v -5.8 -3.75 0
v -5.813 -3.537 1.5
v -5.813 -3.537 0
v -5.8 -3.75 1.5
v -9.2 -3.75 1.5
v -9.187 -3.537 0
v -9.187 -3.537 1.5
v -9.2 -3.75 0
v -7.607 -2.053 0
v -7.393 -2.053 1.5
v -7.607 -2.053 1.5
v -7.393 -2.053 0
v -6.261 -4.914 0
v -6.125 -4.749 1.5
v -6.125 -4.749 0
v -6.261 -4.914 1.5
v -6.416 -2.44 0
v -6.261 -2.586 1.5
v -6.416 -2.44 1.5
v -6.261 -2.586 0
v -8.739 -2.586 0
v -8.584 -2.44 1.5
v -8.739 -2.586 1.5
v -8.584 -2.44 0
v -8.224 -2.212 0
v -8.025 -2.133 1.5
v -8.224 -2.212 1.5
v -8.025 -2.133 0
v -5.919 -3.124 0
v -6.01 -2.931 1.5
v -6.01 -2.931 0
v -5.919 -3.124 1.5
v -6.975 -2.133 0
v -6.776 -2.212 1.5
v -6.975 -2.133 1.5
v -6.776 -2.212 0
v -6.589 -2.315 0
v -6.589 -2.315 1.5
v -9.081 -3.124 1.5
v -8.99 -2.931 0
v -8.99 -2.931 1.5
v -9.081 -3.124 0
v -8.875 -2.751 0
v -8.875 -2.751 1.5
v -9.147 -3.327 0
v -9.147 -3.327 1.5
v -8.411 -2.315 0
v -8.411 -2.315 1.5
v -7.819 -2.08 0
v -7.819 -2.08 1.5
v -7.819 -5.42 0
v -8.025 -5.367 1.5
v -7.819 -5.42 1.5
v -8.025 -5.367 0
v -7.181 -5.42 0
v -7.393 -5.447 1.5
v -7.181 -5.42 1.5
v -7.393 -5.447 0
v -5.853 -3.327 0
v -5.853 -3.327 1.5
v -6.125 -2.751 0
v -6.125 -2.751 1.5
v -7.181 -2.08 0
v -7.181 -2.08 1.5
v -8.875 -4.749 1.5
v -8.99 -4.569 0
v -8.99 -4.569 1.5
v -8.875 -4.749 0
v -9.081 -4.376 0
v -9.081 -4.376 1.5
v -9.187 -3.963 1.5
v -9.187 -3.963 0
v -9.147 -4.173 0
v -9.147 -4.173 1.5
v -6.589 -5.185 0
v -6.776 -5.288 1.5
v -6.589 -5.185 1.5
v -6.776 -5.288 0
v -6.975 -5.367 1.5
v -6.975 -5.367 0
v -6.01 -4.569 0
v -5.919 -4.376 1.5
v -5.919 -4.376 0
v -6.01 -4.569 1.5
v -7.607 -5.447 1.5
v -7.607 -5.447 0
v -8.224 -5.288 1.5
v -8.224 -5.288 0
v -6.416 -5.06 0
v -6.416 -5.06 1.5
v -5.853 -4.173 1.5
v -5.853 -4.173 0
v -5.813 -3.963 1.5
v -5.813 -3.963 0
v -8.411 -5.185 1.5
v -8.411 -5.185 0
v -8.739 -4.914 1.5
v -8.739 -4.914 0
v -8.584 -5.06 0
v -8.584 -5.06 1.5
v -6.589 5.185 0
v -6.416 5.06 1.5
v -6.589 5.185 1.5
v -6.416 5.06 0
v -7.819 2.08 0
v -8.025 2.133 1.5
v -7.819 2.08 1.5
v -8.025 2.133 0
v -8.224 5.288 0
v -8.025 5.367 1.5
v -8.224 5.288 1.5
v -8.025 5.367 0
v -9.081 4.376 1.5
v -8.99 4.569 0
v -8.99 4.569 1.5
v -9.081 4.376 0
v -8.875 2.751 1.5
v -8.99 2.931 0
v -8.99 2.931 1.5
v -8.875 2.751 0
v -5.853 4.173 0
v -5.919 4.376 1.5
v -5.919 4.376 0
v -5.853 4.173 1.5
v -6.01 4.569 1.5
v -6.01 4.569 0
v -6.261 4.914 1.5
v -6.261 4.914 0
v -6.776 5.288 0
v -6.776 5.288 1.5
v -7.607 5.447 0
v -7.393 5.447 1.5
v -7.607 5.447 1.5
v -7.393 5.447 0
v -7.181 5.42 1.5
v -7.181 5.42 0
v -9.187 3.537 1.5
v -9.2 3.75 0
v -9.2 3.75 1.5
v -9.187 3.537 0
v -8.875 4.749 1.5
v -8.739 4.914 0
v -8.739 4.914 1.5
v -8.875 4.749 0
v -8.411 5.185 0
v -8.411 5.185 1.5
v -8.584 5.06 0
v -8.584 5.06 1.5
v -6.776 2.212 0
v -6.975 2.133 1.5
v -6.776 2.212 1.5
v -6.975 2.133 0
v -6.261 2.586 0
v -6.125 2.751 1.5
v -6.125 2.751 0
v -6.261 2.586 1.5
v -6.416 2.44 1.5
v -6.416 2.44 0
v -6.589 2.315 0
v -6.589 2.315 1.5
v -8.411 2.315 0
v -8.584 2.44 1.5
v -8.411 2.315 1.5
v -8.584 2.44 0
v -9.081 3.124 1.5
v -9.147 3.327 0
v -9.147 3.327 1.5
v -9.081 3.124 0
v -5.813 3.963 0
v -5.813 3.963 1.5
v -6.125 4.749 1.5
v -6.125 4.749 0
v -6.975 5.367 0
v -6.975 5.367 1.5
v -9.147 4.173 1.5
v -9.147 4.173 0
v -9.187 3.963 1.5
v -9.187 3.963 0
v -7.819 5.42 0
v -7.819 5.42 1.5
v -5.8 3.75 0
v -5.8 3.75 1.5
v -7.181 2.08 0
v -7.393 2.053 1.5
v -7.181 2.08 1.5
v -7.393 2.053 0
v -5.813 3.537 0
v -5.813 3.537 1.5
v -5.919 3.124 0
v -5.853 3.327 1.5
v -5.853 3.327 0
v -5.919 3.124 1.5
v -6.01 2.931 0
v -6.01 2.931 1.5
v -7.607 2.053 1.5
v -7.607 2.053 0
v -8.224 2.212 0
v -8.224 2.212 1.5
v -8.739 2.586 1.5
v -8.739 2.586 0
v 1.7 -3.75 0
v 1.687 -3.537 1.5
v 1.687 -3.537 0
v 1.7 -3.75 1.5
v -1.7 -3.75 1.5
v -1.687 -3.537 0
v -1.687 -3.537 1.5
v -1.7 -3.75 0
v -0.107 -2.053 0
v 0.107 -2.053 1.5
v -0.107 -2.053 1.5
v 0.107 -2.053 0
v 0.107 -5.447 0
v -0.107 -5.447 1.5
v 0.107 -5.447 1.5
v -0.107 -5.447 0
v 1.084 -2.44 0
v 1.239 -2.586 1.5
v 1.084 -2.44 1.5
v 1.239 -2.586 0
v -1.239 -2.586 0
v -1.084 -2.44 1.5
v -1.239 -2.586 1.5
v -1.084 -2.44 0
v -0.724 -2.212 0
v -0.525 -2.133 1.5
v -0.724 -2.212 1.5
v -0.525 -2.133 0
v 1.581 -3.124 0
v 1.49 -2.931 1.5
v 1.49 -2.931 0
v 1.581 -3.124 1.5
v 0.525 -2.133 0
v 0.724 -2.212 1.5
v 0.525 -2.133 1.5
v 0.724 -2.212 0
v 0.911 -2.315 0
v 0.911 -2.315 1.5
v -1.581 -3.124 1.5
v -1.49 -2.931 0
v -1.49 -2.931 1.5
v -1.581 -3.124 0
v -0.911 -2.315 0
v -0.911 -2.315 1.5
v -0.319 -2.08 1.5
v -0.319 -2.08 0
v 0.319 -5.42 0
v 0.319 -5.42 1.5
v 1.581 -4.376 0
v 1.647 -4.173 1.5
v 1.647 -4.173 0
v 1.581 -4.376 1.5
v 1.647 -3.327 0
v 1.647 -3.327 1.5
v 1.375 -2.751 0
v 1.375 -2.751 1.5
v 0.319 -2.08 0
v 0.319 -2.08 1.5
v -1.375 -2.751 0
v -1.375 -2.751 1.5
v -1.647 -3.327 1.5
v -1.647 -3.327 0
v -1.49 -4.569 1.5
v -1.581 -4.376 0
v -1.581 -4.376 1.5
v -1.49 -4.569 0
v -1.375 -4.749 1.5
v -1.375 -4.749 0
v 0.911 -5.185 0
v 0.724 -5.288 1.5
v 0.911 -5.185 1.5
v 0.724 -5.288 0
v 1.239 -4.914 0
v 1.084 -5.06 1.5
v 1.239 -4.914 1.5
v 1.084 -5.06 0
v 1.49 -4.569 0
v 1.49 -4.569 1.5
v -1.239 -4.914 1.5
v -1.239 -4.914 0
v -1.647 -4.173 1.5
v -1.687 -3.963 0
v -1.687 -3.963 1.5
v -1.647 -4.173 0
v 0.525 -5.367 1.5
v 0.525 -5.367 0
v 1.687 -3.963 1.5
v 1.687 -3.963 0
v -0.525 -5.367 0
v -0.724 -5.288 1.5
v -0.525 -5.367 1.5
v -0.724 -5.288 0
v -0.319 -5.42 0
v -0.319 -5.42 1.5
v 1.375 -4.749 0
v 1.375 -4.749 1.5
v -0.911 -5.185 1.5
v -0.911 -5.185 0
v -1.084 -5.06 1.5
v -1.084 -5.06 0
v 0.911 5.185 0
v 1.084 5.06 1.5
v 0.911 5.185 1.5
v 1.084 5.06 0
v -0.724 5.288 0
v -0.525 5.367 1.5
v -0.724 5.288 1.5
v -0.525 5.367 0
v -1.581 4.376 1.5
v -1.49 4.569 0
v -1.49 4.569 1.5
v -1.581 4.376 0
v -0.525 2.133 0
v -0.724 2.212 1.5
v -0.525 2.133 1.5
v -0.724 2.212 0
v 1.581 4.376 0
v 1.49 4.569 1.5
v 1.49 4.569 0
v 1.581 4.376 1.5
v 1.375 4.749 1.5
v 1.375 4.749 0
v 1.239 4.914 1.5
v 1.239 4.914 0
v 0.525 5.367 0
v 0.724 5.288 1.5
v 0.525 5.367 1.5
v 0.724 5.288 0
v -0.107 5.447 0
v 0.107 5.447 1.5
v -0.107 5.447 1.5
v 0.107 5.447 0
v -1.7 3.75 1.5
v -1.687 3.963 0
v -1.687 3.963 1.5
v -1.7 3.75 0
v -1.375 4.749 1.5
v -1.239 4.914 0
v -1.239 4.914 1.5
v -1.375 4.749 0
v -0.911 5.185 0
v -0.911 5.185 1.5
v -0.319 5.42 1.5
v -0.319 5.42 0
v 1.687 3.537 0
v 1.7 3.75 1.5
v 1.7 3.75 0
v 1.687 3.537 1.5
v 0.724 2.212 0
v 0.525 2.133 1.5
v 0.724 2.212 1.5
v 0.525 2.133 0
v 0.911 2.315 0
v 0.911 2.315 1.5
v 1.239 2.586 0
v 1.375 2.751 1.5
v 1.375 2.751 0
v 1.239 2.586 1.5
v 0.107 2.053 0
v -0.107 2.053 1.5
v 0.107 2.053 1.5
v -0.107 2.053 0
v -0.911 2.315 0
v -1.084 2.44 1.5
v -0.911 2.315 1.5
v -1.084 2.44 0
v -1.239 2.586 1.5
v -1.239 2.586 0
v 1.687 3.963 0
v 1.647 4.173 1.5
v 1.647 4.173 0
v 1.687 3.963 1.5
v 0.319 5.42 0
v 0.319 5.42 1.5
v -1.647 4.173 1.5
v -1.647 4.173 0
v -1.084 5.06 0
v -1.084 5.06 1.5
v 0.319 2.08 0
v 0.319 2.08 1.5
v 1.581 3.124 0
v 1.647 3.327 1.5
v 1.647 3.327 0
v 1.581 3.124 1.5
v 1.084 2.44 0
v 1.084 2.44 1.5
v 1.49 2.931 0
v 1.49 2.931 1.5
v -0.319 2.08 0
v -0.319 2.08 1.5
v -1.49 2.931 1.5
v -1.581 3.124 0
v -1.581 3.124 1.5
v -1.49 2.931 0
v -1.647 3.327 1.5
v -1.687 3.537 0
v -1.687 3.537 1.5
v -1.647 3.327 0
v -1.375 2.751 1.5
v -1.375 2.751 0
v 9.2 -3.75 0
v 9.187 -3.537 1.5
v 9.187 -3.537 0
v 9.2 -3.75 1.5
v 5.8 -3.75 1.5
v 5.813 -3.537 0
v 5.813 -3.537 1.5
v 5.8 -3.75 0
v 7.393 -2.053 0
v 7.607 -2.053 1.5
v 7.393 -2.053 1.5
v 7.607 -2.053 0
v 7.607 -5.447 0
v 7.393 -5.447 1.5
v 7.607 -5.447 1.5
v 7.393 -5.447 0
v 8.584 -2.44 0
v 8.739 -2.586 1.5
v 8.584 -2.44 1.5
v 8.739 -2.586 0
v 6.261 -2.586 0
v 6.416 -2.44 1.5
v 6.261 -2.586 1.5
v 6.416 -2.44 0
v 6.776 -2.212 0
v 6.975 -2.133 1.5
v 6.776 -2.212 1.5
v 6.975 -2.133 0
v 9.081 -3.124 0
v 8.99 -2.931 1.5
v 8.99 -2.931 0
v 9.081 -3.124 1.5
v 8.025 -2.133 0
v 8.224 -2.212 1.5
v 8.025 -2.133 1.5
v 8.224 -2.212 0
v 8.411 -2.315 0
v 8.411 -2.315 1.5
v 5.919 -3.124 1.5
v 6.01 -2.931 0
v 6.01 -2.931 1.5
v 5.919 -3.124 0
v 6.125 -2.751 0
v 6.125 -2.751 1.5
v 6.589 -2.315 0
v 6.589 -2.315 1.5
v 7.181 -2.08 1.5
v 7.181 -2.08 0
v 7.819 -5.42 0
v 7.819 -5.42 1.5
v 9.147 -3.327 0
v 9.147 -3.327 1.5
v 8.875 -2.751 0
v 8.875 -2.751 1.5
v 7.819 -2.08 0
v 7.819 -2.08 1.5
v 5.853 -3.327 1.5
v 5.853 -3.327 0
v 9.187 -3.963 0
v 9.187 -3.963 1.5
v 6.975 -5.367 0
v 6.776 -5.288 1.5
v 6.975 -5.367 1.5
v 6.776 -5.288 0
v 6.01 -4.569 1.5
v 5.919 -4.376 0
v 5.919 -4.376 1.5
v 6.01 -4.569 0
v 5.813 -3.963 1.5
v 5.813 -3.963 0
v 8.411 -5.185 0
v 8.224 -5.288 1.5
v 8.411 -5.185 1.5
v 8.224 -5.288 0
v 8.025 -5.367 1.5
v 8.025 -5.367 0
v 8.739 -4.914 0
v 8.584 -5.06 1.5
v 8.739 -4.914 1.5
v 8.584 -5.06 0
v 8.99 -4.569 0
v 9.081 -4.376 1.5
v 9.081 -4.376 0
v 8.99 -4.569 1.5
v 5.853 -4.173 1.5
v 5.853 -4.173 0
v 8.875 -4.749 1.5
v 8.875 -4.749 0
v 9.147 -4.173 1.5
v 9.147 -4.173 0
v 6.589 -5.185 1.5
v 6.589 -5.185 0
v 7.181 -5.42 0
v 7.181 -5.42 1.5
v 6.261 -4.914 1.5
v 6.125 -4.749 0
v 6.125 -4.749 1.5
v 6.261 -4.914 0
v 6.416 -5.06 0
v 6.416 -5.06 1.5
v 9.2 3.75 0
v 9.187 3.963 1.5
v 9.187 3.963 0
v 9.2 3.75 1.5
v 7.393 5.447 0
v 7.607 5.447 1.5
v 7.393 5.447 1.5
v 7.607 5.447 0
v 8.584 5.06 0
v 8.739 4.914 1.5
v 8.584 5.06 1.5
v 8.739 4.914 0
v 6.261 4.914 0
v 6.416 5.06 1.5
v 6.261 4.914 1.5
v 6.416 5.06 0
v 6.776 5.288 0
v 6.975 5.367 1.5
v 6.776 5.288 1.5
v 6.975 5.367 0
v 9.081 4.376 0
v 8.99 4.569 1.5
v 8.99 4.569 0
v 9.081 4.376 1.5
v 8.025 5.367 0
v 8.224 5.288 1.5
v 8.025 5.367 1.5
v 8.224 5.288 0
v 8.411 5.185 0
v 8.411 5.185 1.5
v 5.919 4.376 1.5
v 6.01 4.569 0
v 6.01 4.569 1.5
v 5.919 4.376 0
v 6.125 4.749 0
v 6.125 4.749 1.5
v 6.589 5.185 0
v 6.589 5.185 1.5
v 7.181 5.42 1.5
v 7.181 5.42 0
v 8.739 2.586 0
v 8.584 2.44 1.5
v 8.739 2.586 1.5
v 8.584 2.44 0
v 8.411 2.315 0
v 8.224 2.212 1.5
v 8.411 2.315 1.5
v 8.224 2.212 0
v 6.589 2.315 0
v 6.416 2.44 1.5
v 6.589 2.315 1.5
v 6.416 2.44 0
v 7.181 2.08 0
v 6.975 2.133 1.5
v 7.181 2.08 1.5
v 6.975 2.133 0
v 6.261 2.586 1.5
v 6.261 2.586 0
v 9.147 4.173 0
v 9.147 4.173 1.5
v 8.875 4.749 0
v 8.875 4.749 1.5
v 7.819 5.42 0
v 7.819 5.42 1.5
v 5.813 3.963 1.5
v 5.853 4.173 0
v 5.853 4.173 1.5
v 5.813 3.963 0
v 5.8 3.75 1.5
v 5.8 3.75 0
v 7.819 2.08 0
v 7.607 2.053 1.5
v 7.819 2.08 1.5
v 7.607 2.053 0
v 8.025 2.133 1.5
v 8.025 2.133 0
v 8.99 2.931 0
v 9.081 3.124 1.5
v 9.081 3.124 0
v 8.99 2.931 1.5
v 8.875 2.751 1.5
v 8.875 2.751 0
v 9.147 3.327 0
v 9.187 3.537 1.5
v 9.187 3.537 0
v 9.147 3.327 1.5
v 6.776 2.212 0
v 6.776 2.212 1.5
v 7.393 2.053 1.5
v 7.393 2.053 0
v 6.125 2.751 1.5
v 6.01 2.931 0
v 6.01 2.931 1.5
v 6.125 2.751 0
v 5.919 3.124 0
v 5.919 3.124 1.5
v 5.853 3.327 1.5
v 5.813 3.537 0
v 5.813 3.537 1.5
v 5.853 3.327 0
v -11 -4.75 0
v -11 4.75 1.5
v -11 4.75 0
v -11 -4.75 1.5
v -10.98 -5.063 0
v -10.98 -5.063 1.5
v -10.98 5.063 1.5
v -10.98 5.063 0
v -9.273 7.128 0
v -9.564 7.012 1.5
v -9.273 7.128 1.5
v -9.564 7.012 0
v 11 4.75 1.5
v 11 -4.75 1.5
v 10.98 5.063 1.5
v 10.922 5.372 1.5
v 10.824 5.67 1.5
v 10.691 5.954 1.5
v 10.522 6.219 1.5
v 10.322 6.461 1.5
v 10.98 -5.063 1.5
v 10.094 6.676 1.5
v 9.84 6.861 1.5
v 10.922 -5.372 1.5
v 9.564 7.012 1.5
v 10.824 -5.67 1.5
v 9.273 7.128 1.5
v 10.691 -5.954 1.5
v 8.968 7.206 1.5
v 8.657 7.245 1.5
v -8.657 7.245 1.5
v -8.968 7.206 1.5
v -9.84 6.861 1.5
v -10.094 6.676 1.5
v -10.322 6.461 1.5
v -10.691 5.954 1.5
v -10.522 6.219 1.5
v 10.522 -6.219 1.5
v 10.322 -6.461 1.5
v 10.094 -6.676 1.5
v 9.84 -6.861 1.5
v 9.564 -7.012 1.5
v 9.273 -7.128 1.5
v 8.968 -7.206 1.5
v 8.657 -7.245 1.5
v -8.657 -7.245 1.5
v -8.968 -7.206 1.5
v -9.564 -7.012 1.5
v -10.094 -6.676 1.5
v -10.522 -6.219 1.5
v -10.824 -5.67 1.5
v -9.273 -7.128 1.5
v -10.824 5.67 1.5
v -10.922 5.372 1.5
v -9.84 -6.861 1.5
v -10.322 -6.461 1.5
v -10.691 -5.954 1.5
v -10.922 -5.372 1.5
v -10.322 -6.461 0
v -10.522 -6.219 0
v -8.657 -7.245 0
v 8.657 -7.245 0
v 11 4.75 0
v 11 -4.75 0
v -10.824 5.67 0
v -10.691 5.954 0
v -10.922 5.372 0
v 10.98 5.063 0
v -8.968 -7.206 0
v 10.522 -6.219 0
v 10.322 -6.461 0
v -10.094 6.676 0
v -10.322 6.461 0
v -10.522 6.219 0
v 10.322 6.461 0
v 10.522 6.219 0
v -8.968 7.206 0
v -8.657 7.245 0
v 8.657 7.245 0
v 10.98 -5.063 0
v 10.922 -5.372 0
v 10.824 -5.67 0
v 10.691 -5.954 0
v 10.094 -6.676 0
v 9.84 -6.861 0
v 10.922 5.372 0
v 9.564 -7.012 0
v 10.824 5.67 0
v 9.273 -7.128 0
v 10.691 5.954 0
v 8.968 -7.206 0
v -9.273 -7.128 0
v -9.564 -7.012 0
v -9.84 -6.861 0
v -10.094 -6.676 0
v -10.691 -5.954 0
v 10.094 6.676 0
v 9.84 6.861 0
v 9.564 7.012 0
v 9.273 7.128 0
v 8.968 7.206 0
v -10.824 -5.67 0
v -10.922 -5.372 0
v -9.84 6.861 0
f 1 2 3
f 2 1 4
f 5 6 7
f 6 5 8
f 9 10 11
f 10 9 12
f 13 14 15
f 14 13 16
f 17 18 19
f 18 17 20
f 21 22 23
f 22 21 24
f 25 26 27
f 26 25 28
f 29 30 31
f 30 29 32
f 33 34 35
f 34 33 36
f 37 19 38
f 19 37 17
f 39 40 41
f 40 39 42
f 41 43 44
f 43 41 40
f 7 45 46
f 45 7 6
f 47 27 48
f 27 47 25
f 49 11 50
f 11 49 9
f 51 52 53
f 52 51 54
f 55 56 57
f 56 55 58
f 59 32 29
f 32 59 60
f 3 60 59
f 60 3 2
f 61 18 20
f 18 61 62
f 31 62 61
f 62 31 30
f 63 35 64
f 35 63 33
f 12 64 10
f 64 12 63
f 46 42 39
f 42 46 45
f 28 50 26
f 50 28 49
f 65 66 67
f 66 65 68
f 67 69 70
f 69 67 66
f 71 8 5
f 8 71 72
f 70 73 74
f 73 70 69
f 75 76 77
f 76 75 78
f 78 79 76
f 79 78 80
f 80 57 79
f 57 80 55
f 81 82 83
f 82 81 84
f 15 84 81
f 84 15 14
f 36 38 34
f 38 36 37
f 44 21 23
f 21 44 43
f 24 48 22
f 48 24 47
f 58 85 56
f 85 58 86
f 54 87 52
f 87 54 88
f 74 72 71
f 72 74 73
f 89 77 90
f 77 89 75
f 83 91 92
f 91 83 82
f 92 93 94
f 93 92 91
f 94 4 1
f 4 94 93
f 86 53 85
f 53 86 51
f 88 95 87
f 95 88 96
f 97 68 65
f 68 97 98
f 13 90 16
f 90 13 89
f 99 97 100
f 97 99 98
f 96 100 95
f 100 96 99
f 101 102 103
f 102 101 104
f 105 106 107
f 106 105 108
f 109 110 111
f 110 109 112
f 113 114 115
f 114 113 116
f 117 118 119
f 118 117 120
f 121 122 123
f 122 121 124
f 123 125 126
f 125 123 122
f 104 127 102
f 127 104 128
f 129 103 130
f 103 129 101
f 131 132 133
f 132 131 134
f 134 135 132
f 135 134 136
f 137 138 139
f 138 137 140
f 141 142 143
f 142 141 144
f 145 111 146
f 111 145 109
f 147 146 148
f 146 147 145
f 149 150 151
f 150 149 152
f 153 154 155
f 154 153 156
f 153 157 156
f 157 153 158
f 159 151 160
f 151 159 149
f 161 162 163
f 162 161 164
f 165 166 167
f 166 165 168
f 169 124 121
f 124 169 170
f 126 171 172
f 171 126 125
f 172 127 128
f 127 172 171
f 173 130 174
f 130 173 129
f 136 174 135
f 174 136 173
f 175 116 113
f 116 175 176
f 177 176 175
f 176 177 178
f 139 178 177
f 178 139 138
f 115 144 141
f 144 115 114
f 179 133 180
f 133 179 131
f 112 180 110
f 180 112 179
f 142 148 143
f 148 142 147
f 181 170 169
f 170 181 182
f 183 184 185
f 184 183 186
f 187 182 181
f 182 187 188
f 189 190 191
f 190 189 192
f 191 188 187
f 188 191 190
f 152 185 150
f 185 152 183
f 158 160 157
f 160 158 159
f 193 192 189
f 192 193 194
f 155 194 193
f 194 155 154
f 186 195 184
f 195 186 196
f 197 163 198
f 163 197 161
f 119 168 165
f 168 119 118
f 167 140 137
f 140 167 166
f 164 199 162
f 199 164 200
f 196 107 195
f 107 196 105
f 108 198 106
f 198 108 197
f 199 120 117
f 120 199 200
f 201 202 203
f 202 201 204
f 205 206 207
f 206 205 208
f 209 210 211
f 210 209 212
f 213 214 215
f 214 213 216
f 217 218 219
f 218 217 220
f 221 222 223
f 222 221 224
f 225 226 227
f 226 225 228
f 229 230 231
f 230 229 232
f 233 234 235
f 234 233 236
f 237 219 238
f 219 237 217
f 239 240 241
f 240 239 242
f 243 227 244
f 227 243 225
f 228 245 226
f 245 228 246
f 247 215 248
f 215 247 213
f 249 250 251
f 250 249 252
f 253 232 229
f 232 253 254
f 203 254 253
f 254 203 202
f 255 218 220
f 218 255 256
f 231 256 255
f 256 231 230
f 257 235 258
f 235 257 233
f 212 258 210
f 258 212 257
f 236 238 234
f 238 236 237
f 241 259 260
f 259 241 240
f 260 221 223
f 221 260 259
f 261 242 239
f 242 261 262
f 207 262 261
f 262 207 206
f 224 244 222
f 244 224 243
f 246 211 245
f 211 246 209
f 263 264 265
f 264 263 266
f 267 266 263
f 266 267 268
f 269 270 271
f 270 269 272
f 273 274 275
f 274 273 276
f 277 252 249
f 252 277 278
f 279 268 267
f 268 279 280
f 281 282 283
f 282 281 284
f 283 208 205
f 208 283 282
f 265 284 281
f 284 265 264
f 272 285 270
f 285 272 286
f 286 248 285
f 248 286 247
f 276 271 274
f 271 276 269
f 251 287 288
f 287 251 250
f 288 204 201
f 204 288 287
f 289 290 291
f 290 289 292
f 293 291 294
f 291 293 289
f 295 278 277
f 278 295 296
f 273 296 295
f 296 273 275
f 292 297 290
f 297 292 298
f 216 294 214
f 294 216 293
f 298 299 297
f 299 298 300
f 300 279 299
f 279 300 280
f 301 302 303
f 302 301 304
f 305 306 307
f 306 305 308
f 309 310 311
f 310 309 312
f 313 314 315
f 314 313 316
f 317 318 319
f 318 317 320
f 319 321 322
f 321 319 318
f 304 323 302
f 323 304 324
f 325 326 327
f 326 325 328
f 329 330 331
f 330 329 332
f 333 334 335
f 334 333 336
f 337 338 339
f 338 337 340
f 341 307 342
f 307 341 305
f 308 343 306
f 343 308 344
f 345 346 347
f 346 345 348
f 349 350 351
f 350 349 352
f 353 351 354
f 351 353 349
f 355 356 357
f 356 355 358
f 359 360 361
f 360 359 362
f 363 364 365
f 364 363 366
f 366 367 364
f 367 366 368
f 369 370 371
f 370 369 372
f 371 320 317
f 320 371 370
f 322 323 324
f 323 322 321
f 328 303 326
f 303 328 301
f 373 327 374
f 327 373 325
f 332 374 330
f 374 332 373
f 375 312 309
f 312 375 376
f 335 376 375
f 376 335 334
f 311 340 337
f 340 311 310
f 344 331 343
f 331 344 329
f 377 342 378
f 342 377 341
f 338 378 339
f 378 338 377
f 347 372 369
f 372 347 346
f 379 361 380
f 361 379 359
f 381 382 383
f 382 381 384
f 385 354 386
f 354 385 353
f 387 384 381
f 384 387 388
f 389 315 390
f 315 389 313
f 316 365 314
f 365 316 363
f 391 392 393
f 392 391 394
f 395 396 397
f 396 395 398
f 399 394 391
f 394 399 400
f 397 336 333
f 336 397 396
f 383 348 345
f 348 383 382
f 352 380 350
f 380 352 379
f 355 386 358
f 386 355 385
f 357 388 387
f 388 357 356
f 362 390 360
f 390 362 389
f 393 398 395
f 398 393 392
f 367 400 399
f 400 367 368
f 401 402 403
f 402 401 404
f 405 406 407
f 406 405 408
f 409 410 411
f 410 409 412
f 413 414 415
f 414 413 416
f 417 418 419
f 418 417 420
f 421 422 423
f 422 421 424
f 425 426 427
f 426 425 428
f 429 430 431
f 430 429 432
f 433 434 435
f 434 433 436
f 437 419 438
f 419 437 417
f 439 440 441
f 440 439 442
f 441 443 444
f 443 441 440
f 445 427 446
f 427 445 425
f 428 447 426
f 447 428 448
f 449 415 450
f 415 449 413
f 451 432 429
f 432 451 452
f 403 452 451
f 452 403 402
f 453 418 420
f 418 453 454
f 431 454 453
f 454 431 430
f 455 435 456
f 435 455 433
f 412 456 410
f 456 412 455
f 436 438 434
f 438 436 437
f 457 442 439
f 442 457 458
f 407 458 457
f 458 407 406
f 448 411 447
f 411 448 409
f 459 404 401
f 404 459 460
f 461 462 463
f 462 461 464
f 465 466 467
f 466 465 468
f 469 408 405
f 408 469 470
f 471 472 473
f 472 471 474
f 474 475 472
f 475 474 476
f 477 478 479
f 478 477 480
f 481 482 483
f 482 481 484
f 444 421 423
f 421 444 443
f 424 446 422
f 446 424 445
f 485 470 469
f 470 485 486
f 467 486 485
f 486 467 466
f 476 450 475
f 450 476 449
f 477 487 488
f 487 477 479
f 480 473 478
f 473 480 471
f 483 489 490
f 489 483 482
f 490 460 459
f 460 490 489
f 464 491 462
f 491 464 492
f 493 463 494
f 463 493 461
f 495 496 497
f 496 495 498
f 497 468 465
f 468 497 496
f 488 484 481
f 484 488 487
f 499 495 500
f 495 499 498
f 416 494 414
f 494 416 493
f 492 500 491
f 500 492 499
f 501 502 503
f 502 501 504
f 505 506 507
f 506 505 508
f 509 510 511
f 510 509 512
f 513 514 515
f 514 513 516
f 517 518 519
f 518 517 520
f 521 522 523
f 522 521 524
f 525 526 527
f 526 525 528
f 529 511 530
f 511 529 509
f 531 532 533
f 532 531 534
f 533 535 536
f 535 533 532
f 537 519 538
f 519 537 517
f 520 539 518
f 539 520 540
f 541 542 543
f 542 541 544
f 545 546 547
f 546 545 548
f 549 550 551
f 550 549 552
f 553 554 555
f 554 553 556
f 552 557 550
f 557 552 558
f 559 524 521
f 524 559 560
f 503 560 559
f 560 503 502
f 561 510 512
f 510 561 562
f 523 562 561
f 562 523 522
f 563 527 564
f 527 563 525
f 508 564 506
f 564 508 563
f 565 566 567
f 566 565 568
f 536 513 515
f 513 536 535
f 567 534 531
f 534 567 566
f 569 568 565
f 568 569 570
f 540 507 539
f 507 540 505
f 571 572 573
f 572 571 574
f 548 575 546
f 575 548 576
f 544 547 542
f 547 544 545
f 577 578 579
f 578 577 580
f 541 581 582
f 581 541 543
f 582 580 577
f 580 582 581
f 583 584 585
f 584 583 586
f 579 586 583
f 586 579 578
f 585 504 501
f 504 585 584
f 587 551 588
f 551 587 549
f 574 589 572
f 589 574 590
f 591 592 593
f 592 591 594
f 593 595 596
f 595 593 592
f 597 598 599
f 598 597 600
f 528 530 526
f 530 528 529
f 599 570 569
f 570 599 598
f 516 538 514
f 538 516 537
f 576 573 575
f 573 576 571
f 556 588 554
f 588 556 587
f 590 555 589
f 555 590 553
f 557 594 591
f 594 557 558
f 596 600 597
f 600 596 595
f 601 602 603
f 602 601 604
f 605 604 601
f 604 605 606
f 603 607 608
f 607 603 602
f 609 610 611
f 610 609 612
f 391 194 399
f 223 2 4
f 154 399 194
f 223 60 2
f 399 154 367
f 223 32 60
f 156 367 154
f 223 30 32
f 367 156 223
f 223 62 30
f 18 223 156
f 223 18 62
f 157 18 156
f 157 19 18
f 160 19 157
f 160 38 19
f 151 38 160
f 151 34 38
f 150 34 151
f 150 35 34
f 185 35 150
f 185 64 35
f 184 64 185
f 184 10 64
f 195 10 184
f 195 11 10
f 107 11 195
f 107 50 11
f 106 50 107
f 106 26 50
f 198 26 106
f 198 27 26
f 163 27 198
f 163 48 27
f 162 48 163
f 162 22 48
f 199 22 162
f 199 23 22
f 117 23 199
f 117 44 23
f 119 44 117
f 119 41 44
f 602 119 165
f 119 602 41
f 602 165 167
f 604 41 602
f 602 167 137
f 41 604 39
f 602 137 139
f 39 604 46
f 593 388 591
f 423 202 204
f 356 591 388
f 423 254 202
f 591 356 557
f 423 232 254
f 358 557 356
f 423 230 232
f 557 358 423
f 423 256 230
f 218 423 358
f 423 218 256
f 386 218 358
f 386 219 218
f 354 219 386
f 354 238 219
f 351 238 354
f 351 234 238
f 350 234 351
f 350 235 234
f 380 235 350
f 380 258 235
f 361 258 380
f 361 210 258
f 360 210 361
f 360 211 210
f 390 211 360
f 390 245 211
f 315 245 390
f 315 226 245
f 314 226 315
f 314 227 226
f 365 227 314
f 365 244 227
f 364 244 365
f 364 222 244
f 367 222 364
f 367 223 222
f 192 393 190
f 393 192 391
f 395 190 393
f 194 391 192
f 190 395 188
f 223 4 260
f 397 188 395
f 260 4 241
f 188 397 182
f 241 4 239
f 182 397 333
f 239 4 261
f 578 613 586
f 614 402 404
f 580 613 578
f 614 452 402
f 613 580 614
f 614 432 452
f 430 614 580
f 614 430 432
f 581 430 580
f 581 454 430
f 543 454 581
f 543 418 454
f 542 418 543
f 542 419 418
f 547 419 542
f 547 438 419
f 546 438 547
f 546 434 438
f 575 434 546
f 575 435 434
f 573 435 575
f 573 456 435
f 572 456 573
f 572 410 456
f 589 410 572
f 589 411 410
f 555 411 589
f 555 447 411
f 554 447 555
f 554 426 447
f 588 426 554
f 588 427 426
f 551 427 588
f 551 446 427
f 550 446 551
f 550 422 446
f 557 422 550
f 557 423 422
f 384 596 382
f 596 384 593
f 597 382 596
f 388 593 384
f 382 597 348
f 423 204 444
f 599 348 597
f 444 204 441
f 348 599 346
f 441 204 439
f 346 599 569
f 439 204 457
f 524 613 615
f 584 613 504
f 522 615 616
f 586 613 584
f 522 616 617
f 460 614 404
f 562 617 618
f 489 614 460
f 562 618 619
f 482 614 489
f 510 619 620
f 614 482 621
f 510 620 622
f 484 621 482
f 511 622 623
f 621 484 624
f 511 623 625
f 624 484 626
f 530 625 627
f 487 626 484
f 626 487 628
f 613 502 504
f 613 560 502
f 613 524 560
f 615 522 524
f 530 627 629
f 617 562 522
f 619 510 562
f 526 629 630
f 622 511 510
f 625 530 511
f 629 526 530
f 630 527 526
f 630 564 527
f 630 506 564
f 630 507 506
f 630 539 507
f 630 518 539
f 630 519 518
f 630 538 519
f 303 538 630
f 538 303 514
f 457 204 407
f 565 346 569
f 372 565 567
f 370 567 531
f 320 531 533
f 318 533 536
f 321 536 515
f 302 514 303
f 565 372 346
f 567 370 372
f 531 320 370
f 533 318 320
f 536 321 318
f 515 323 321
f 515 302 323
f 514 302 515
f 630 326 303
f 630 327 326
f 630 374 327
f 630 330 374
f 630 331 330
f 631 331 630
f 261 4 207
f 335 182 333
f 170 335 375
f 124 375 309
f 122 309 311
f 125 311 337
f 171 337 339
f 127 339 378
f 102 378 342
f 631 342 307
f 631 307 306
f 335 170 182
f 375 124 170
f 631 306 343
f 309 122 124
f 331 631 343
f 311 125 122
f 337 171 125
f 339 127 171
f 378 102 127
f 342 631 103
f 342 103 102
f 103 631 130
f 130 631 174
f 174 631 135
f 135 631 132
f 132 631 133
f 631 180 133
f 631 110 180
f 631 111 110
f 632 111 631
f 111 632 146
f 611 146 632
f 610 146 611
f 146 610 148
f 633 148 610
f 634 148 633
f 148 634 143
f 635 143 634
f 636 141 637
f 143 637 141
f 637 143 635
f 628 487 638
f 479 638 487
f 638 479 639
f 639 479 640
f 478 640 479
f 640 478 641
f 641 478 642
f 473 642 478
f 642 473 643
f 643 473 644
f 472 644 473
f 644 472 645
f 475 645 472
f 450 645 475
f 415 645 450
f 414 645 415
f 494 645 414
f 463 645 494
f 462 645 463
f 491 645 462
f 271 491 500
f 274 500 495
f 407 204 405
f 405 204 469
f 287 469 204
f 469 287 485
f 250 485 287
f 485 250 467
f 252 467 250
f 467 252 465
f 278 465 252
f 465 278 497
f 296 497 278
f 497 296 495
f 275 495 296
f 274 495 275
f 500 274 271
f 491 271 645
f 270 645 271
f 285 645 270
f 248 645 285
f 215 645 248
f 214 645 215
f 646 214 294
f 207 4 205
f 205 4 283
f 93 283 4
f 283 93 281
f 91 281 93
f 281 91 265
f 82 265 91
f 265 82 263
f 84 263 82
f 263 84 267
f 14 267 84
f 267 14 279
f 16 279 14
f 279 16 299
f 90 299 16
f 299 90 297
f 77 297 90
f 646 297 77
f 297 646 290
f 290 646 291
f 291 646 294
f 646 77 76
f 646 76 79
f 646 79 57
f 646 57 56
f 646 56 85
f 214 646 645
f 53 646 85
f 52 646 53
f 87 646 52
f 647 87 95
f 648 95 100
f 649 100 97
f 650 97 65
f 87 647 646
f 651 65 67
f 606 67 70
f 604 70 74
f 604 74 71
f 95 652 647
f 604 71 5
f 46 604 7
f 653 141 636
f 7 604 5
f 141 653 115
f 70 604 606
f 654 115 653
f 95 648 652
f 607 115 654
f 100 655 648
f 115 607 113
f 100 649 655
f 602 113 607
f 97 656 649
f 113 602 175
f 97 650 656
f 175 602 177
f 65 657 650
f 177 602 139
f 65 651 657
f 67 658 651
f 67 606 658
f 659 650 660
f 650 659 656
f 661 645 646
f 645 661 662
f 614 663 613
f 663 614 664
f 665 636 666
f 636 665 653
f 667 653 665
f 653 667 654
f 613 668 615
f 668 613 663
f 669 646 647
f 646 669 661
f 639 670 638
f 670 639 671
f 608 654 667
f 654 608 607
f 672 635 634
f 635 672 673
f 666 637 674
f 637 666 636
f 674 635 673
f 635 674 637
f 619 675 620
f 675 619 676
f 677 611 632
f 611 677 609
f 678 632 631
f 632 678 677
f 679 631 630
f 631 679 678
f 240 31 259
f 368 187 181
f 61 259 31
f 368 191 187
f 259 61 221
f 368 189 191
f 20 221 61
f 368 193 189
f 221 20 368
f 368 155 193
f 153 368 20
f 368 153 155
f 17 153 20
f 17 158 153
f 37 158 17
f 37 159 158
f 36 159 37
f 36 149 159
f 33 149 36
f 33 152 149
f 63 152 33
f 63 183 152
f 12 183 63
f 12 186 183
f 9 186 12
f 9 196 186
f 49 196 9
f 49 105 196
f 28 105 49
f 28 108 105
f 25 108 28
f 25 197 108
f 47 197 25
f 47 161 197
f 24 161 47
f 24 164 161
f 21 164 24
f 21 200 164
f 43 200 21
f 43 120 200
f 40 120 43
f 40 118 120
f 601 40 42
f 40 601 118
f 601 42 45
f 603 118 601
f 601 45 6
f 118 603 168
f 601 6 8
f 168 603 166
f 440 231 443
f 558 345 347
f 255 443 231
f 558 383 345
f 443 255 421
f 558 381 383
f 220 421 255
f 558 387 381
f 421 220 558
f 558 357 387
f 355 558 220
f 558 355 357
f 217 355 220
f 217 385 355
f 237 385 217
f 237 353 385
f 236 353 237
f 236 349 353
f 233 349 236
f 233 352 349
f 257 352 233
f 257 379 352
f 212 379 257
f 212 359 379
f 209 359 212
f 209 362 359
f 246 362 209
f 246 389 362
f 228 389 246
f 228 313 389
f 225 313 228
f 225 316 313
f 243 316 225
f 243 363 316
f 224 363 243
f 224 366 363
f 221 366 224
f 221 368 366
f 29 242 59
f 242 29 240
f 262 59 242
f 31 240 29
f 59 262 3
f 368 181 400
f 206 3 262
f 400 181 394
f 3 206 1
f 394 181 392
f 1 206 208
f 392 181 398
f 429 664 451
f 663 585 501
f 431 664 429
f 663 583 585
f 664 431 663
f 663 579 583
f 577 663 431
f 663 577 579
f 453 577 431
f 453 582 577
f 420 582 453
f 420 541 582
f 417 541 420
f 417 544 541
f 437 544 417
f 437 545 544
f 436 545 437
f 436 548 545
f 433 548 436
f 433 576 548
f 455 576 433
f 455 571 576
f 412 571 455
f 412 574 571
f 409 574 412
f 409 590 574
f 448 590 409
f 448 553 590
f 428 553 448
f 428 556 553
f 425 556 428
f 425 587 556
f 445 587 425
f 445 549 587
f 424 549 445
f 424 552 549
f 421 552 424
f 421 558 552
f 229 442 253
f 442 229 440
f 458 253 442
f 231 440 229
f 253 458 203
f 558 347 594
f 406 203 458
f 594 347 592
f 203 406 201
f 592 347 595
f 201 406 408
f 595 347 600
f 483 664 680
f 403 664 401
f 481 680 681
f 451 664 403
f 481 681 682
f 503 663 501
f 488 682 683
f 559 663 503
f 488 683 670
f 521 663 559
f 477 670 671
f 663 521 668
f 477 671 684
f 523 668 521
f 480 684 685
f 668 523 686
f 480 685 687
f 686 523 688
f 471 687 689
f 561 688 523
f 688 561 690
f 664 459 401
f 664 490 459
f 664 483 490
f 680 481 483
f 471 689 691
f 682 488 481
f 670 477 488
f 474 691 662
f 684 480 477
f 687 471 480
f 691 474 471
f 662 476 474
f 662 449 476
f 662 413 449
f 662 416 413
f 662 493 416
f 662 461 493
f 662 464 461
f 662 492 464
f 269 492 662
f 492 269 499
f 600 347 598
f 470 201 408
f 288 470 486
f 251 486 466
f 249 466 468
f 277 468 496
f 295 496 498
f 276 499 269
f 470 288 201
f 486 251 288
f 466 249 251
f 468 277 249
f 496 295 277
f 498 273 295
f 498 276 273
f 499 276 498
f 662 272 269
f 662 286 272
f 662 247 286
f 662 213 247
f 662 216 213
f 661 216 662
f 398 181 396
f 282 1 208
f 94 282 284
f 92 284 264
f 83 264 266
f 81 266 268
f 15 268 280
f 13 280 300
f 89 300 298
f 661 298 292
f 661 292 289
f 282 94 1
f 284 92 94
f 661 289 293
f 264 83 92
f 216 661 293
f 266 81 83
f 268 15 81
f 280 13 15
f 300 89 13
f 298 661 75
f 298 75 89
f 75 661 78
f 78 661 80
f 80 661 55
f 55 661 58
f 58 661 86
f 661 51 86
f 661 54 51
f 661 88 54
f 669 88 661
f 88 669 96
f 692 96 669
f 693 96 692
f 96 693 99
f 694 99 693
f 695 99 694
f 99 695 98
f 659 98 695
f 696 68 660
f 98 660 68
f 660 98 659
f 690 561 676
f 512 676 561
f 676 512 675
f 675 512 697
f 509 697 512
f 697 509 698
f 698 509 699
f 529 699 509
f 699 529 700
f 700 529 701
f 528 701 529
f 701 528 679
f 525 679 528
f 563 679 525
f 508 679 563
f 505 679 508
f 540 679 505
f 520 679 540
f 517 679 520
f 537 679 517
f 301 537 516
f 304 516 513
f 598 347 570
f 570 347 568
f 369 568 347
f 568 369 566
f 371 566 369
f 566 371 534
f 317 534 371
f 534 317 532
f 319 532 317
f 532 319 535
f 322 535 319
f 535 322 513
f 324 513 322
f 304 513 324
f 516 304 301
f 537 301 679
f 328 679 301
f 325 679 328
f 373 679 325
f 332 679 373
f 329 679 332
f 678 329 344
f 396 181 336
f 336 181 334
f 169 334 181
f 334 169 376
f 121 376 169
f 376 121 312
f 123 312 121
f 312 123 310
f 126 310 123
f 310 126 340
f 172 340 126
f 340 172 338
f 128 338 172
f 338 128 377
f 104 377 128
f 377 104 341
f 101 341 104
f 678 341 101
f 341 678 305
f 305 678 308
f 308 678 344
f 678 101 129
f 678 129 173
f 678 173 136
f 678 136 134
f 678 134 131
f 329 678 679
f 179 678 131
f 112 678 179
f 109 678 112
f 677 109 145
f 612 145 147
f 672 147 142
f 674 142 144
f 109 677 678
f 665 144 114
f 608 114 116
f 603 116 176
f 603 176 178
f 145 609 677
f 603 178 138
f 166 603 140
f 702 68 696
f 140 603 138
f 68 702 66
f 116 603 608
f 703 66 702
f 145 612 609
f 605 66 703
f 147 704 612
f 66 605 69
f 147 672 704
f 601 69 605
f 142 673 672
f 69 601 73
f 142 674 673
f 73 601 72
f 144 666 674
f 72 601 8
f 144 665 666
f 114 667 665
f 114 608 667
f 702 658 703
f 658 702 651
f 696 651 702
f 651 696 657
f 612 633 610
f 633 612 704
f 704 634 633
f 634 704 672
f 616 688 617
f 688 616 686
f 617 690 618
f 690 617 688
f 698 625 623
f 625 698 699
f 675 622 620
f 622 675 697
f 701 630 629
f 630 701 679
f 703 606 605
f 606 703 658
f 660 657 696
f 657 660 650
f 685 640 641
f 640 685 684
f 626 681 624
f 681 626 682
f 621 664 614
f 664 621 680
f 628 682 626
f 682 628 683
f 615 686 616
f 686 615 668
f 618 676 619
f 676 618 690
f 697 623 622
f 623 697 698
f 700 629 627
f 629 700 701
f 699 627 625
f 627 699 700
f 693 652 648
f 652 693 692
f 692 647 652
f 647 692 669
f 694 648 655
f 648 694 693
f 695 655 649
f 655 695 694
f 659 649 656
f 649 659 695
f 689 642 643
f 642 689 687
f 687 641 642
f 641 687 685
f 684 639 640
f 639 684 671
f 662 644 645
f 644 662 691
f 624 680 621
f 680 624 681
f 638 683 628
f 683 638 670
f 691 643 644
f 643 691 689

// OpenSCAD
$fn = 50;


difference() {
	union() {
		translate(v = [0, 0, 0]) {
			rotate(a = [0, 0, 0]) {
				hull() {
					translate(v = [-8.5000000000, 4.7500000000, 0]) {
						rotate(a = [0, 0, 0]) {
							translate(v = [0, 0, 0]) {
								rotate(a = [0, 0, 0]) {
									cylinder(h = 1.5000000000, r = 2.5000000000);
								}
							}
						}
					}
					translate(v = [8.5000000000, 4.7500000000, 0]) {
						rotate(a = [0, 0, 0]) {
							translate(v = [0, 0, 0]) {
								rotate(a = [0, 0, 0]) {
									cylinder(h = 1.5000000000, r = 2.5000000000);
								}
							}
						}
					}
					translate(v = [-8.5000000000, -4.7500000000, 0]) {
						rotate(a = [0, 0, 0]) {
							translate(v = [0, 0, 0]) {
								rotate(a = [0, 0, 0]) {
									cylinder(h = 1.5000000000, r = 2.5000000000);
								}
							}
						}
					}
					translate(v = [8.5000000000, -4.7500000000, 0]) {
						rotate(a = [0, 0, 0]) {
							translate(v = [0, 0, 0]) {
								rotate(a = [0, 0, 0]) {
									cylinder(h = 1.5000000000, r = 2.5000000000);
								}
							}
						}
					}
				}
			}
		}
	}
	union() {
		translate(v = [-7.5000000000, -3.7500000000, 0]) {
			rotate(a = [0, 0, 0]) {
				translate(v = [0, 0, -50]) {
					rotate(a = [0, 0, 0]) {
						cylinder(h = 100, r = 1.7000000000);
					}
				}
			}
		}
		translate(v = [-7.5000000000, 3.7500000000, 0]) {
			rotate(a = [0, 0, 0]) {
				translate(v = [0, 0, -50]) {
					rotate(a = [0, 0, 0]) {
						cylinder(h = 100, r = 1.7000000000);
					}
				}
			}
		}
		translate(v = [0.0000000000, -3.7500000000, 0]) {
			rotate(a = [0, 0, 0]) {
				translate(v = [0, 0, -50]) {
					rotate(a = [0, 0, 0]) {
						cylinder(h = 100, r = 1.7000000000);
					}
				}
			}
		}
		translate(v = [0.0000000000, 3.7500000000, 0]) {
			rotate(a = [0, 0, 0]) {
				translate(v = [0, 0, -50]) {
					rotate(a = [0, 0, 0]) {
						cylinder(h = 100, r = 1.7000000000);
					}
				}
			}
		}
		translate(v = [7.5000000000, -3.7500000000, 0]) {
			rotate(a = [0, 0, 0]) {
				translate(v = [0, 0, -50]) {
					rotate(a = [0, 0, 0]) {
						cylinder(h = 100, r = 1.7000000000);
					}
				}
			}
		}
		translate(v = [7.5000000000, 3.7500000000, 0]) {
			rotate(a = [0, 0, 0]) {
				translate(v = [0, 0, -50]) {
					rotate(a = [0, 0, 0]) {
						cylinder(h = 100, r = 1.7000000000);
					}
				}
			}
		}
	}
}
